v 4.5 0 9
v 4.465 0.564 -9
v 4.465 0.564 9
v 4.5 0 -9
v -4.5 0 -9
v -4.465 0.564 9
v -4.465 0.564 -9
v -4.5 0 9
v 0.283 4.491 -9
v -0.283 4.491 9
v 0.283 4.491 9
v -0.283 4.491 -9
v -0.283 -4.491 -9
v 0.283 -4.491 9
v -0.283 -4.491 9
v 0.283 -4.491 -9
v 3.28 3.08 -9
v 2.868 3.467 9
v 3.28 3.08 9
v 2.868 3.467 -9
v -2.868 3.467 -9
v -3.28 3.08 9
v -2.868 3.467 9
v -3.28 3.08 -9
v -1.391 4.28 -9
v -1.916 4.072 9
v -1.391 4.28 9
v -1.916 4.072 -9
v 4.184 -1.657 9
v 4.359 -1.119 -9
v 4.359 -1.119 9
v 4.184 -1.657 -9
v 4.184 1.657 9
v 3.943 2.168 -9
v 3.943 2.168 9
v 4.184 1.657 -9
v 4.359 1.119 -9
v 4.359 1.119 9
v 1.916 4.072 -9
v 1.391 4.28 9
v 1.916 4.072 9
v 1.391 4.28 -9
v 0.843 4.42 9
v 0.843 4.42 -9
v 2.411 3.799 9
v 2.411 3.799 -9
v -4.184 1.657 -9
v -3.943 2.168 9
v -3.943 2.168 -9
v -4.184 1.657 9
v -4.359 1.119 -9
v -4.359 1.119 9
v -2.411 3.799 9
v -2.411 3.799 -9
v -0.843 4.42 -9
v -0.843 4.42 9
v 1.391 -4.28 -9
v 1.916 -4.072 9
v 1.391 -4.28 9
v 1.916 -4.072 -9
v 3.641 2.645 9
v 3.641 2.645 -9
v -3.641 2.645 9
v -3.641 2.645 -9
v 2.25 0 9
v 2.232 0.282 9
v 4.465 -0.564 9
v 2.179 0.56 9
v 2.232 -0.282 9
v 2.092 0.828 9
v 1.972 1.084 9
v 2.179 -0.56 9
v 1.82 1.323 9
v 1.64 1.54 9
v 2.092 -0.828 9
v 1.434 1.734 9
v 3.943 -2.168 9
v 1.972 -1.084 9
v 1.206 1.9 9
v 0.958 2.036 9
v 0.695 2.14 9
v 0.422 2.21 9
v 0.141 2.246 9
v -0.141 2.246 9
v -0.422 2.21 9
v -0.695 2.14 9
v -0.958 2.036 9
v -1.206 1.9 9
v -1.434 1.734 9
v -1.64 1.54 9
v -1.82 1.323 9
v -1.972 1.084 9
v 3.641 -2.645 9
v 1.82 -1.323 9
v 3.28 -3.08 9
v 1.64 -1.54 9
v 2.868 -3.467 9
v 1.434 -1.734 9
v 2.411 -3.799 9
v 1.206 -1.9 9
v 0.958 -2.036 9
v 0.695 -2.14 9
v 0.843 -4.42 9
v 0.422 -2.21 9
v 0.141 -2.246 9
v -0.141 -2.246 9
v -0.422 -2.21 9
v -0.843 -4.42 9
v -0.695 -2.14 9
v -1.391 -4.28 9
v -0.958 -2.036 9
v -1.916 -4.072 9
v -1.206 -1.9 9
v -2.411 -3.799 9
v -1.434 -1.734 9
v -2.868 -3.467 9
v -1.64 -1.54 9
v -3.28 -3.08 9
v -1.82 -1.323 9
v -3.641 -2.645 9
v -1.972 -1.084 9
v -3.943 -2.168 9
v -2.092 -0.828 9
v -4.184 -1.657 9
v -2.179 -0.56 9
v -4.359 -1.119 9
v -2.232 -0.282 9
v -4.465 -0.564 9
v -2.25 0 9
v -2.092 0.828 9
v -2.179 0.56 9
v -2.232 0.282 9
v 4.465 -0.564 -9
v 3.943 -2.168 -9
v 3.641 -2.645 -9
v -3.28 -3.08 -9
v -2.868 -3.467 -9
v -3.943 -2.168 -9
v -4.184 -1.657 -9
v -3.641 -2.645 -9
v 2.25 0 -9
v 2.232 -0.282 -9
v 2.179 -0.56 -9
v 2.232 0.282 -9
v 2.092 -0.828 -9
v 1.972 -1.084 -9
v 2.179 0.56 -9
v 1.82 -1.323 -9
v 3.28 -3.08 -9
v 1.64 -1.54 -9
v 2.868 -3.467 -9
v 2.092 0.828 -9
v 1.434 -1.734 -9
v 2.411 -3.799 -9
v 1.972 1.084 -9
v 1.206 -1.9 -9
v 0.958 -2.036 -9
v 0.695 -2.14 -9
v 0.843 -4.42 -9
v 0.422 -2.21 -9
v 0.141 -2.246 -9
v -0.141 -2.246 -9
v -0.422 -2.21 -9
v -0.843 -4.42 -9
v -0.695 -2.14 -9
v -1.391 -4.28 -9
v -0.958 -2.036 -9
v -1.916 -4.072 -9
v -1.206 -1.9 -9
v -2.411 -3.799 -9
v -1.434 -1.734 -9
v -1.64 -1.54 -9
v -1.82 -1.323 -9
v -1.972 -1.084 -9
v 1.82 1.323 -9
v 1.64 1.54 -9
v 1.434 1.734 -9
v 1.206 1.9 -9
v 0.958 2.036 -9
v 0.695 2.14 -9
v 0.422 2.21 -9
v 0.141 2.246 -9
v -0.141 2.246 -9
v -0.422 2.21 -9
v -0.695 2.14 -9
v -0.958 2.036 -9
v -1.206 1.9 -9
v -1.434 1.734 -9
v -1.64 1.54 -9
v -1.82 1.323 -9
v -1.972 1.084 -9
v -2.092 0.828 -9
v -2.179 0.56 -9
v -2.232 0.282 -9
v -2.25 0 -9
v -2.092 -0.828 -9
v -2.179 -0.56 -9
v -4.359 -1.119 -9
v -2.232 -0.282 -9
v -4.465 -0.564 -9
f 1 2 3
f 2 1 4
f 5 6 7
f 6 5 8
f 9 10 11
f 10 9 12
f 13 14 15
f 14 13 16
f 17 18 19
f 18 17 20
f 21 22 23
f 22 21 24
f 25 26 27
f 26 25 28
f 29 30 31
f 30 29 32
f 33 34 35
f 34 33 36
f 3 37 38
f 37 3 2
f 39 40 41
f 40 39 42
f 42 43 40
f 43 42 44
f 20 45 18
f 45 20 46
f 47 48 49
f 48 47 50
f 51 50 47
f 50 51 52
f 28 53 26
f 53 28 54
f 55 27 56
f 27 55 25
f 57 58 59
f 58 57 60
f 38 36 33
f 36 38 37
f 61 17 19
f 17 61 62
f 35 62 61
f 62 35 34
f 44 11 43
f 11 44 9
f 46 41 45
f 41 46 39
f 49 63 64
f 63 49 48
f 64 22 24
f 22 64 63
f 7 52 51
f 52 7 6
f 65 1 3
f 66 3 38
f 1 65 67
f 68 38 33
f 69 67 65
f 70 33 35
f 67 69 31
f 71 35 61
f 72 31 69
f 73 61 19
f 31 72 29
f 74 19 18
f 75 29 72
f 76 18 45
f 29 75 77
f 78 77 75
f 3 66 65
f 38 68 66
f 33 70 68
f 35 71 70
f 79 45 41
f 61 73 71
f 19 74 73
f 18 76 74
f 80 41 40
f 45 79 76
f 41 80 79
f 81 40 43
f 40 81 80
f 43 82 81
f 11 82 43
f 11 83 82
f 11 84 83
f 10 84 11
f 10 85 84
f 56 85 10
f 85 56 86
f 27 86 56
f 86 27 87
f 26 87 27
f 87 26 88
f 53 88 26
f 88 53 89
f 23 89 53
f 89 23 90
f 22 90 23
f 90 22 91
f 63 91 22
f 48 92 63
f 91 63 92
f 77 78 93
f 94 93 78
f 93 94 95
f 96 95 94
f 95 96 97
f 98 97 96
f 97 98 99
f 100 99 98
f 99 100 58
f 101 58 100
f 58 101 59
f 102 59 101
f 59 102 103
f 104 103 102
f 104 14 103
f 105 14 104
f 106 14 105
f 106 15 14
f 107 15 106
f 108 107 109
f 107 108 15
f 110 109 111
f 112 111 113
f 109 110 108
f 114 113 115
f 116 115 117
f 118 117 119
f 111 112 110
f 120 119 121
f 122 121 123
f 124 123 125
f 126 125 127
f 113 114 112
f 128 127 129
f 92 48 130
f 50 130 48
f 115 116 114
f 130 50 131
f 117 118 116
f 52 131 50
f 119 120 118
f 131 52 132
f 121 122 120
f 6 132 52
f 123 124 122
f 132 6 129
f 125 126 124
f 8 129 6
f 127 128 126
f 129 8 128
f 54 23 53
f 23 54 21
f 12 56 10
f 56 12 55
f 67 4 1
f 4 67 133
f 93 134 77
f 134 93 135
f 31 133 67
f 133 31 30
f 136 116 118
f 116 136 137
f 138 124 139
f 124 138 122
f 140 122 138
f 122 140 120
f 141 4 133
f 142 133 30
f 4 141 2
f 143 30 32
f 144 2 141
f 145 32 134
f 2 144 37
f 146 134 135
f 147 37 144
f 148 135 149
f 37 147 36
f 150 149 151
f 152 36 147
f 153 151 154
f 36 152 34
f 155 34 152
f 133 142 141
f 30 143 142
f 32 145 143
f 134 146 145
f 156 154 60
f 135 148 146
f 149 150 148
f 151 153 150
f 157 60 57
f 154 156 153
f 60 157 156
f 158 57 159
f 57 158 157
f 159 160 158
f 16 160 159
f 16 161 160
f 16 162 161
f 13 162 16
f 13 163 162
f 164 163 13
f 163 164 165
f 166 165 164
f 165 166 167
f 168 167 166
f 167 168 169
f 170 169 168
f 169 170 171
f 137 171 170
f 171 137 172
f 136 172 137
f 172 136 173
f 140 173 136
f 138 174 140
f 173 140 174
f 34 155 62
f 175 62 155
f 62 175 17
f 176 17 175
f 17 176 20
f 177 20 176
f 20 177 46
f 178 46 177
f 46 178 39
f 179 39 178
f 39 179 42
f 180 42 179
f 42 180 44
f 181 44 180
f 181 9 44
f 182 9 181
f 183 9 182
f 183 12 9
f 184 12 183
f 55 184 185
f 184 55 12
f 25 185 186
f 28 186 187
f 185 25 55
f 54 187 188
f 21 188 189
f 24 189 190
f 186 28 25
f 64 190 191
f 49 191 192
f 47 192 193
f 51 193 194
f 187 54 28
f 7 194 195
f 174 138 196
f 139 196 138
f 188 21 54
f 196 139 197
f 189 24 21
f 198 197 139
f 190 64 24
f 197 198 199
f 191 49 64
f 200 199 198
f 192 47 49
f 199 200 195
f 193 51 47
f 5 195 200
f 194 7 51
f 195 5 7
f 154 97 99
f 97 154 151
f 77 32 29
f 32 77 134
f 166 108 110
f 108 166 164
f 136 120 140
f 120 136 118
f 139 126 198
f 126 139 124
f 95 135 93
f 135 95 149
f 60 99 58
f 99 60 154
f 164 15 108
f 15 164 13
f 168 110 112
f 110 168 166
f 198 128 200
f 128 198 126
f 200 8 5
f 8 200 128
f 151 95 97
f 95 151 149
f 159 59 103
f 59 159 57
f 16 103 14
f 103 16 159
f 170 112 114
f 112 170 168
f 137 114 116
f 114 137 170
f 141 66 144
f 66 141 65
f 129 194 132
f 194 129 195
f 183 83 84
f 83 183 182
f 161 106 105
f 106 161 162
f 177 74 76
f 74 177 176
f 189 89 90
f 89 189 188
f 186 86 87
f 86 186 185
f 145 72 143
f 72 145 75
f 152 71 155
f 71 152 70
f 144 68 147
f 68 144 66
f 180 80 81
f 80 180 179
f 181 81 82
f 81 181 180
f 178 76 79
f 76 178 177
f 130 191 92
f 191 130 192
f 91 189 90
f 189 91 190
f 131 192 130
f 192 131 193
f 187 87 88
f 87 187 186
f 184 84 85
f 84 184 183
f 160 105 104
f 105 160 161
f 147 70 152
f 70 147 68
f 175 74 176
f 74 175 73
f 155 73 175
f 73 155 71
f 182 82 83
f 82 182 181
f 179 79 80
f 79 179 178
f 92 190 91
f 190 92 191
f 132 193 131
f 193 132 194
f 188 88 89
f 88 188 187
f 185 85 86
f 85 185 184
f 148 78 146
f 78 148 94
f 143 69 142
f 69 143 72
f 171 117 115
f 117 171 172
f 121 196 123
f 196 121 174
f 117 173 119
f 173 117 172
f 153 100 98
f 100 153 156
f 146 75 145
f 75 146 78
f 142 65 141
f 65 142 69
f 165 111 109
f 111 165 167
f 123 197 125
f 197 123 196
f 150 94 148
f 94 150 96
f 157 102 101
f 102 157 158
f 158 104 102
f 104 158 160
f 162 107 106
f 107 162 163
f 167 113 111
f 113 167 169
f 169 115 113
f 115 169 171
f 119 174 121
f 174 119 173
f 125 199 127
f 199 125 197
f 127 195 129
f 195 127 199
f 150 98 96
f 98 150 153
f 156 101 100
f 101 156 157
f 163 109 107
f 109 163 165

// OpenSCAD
$fn = 50;


difference() {
	union() {
		translate(v = [0, 0, -9.0000000000]) {
			cylinder(h = 18, r = 4.5000000000);
		}
	}
	union() {
		translate(v = [0, 0, -100.0000000000]) {
			cylinder(h = 200, r = 2.2500000000);
		}
	}
}
